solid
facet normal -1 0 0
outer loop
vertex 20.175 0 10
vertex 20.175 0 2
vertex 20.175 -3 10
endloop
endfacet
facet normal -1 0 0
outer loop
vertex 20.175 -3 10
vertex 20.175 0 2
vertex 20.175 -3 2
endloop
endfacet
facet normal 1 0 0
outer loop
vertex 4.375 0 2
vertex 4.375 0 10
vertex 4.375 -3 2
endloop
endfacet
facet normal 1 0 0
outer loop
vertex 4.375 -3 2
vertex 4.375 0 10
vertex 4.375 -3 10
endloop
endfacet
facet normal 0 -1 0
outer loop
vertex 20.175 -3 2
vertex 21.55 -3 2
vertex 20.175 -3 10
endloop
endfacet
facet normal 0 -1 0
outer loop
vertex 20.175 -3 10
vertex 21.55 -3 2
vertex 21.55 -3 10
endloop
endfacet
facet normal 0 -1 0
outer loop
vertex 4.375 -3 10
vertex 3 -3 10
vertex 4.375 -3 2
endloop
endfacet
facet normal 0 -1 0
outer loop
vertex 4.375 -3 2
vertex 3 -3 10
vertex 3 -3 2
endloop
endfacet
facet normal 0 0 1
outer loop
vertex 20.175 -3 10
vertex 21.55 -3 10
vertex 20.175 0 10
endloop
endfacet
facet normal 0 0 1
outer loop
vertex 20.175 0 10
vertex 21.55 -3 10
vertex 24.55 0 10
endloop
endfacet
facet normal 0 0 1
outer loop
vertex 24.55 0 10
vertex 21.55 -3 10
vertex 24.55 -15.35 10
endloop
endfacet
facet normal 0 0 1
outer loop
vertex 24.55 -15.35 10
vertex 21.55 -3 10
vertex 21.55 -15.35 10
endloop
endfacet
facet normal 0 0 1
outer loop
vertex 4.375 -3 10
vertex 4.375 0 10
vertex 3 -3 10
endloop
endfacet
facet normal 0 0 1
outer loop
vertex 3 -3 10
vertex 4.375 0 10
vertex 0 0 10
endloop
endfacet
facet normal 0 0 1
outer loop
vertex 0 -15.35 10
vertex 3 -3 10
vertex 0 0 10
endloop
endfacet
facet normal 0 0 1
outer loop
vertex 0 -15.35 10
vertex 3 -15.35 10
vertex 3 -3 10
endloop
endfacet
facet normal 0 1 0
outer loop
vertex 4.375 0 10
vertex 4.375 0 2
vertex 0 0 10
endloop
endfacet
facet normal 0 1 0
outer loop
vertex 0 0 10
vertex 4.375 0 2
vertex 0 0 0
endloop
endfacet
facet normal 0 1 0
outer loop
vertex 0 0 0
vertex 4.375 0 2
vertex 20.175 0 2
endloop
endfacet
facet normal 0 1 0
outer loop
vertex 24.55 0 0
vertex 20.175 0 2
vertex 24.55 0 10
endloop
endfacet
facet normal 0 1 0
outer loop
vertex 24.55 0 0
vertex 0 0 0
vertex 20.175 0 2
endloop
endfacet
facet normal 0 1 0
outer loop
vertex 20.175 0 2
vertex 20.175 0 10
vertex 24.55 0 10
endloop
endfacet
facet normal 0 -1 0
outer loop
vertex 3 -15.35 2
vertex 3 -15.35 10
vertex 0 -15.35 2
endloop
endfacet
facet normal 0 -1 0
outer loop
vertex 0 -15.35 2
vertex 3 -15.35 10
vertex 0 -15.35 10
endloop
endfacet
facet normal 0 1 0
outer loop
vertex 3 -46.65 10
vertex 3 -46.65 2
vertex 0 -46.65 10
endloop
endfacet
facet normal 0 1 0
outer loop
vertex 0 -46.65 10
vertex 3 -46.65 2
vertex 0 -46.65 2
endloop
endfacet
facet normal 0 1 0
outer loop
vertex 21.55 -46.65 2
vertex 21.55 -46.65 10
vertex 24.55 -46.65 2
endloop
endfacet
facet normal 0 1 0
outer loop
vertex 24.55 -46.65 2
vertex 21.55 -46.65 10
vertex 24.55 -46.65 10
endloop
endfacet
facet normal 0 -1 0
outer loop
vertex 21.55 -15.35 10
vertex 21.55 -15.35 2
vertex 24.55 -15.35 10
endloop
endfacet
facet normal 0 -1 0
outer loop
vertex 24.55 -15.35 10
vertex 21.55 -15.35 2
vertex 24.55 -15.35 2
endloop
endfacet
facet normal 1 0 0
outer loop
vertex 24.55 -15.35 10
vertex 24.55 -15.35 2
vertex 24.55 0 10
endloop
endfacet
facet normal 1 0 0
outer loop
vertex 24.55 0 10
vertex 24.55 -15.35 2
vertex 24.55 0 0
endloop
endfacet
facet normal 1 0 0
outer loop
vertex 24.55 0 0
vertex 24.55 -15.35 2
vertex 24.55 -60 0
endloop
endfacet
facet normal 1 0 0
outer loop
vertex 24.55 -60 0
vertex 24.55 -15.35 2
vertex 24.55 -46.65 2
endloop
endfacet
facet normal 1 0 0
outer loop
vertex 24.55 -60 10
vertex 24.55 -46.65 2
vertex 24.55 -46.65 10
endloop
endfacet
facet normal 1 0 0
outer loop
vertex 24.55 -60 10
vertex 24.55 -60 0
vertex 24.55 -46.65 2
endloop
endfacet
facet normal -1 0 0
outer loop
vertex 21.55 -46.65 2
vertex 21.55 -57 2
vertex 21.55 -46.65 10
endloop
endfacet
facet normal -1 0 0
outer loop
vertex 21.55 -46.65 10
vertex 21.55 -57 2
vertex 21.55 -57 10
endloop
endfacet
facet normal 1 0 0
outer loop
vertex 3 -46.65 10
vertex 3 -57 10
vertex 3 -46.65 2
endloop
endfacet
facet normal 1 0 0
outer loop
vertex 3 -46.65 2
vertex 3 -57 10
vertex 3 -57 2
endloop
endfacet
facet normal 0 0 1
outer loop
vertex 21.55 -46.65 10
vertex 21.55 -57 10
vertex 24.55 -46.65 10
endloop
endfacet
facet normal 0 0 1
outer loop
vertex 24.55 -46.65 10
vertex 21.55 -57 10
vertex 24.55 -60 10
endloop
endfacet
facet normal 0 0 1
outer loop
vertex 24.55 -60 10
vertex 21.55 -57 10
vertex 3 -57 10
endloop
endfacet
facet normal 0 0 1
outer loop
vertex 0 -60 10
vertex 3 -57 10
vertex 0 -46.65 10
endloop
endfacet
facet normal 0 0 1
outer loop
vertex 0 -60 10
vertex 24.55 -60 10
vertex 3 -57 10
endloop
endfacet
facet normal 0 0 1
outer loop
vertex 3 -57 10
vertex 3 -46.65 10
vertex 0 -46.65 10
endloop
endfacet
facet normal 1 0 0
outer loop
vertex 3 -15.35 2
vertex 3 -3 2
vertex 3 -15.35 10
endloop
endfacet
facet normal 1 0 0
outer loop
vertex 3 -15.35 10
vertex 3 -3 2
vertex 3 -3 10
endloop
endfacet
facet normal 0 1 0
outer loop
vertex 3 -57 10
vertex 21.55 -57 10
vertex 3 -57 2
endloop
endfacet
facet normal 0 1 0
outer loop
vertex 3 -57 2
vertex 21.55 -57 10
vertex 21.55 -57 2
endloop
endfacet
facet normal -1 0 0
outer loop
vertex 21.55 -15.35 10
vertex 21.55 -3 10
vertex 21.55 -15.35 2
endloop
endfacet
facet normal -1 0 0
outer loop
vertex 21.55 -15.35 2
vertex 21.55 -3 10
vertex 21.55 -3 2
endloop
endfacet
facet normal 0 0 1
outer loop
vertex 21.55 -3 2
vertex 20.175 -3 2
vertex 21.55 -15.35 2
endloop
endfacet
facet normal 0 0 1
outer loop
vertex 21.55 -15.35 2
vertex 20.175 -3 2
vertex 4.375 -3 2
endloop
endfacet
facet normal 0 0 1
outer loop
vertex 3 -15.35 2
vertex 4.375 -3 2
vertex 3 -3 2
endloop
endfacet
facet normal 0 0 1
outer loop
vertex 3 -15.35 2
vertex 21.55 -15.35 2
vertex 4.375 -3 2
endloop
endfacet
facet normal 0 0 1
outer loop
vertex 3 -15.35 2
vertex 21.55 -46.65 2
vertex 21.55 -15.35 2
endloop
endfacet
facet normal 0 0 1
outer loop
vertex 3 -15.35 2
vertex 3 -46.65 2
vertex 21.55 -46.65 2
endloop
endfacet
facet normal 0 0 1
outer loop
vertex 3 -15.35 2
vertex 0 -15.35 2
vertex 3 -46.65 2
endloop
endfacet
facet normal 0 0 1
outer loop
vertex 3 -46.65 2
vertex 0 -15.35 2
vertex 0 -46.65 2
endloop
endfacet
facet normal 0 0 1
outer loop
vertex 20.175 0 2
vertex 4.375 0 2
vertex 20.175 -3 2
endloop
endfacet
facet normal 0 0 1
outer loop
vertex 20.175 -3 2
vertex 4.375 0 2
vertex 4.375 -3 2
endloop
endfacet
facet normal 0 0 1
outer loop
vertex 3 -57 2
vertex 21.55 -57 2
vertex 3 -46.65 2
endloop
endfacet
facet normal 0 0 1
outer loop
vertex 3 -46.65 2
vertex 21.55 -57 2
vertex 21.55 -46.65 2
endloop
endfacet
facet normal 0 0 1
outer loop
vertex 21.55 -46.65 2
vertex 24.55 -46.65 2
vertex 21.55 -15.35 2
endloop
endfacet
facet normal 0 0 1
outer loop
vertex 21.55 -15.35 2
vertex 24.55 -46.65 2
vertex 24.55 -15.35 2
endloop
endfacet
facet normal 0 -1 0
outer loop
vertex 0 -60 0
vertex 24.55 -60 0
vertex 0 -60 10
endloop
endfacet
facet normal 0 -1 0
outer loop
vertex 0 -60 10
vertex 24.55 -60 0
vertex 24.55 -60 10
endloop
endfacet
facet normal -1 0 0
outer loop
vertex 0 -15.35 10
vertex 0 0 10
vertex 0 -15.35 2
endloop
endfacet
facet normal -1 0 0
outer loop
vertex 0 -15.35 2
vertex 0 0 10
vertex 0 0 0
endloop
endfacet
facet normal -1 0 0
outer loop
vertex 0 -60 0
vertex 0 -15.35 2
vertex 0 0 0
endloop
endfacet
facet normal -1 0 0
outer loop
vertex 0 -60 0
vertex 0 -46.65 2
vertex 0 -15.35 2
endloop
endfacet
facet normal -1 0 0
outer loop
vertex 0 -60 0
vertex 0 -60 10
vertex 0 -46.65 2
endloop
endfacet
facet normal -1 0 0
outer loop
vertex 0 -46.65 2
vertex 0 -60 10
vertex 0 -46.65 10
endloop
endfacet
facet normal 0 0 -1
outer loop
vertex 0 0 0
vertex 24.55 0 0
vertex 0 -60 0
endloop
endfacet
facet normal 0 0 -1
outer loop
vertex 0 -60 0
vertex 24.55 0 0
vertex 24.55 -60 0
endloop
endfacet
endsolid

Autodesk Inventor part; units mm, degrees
ref_plane "YZ Plane" through (0, 0, 0) normal (1, 0, 0) x (0, 1, 0)
ref_plane "XZ Plane" through (0, 0, 0) normal (0, 1, 0) x (-1, 0, 0)
ref_plane "XY Plane" through (0, 0, 0) normal (0, 0, 1) x (1, 0, 0)
sketch "Sketch1" plane through (0, 0, 0) normal (0, 0, 1) x (1, 0, 0)
  line L0 (0, 0) -> (24.55, 0)
  line L1 (24.55, 0) -> (24.55, -60)
  line L2 (24.55, -60) -> (0, -60)
  line L3 (0, -60) -> (0, 0)
  dimension "d0" = 24.55
  dimension "d1" = 60
extrude "Extrusion1" add sketch "Sketch1" along normal blind 10
sketch "Sketch2" plane through (0, 0, 10) normal (0, 0, 1) x (1, 0, 0)
  line L0 (24.55, 0) -> (0, 0) projected
  line L1 (3, -3) -> (21.55, -3)
  line L2 (21.55, -3) -> (21.55, -57)
  line L3 (21.55, -57) -> (3, -57)
  line L4 (3, -57) -> (3, -3)
  line L5 (0, -60) -> (24.55, -60) projected
  line L6 (24.55, -60) -> (24.55, 0) projected
  line L7 (0, 0) -> (0, -60) projected
  dimension "d8" = 3
  dimension "d9" = 3
  dimension "d10" = 3
  dimension "d11" = 3
extrude "Extrusion2" cut sketch "Sketch2" against normal blind 8 contours L1 L2 L3 L4
sketch "Sketch3" plane through (24.55, -60, 0) normal (1, 0, 0) x (0, 0, -1)
  line L0 (-10, 44.65) -> (-2, 44.65)
  line L1 (-2, 3) -> (-2, 57) projected
  line L2 (-10, 13.35) -> (-2, 13.35)
  line L3 (-2, 13.35) -> (-2, 44.65)
  line L4 (-10, 13.35) -> (-10, 44.65)
  line L5 (-10, 3) -> (-10, 57) projected
  line L6 (0, 60) -> (-10, 60) projected
  line L7 (0, 0) -> (-10, 0) projected
  dimension "d16" = 8
  dimension "d18" = 15.35
  dimension "d19" = 13.35
extrude "Extrusion3" cut sketch "Sketch3" against normal blind 24.55
sketch "Sketch4" plane through (0, 0, 0) normal (0, 1, 0) x (1, 0, 0)
  line L0 (4.375, -10) -> (4.375, -2)
  line L1 (21.55, -2) -> (3, -2) projected
  line L2 (4.375, -2) -> (20.175, -2)
  line L3 (20.175, -2) -> (20.175, -10)
  line L4 (20.175, -10) -> (4.375, -10)
  line L5 (24.55, 0) -> (24.55, -10) projected
  point P0 (0, 0)
  dimension "d23" = 15.8
  dimension "d24" = 4.375
  dimension "d25" = 8
  dimension "d26" = 15.8
extrude "Extrusion4" cut sketch "Sketch4" against normal blind 3
properties part number "tapaArduino"
